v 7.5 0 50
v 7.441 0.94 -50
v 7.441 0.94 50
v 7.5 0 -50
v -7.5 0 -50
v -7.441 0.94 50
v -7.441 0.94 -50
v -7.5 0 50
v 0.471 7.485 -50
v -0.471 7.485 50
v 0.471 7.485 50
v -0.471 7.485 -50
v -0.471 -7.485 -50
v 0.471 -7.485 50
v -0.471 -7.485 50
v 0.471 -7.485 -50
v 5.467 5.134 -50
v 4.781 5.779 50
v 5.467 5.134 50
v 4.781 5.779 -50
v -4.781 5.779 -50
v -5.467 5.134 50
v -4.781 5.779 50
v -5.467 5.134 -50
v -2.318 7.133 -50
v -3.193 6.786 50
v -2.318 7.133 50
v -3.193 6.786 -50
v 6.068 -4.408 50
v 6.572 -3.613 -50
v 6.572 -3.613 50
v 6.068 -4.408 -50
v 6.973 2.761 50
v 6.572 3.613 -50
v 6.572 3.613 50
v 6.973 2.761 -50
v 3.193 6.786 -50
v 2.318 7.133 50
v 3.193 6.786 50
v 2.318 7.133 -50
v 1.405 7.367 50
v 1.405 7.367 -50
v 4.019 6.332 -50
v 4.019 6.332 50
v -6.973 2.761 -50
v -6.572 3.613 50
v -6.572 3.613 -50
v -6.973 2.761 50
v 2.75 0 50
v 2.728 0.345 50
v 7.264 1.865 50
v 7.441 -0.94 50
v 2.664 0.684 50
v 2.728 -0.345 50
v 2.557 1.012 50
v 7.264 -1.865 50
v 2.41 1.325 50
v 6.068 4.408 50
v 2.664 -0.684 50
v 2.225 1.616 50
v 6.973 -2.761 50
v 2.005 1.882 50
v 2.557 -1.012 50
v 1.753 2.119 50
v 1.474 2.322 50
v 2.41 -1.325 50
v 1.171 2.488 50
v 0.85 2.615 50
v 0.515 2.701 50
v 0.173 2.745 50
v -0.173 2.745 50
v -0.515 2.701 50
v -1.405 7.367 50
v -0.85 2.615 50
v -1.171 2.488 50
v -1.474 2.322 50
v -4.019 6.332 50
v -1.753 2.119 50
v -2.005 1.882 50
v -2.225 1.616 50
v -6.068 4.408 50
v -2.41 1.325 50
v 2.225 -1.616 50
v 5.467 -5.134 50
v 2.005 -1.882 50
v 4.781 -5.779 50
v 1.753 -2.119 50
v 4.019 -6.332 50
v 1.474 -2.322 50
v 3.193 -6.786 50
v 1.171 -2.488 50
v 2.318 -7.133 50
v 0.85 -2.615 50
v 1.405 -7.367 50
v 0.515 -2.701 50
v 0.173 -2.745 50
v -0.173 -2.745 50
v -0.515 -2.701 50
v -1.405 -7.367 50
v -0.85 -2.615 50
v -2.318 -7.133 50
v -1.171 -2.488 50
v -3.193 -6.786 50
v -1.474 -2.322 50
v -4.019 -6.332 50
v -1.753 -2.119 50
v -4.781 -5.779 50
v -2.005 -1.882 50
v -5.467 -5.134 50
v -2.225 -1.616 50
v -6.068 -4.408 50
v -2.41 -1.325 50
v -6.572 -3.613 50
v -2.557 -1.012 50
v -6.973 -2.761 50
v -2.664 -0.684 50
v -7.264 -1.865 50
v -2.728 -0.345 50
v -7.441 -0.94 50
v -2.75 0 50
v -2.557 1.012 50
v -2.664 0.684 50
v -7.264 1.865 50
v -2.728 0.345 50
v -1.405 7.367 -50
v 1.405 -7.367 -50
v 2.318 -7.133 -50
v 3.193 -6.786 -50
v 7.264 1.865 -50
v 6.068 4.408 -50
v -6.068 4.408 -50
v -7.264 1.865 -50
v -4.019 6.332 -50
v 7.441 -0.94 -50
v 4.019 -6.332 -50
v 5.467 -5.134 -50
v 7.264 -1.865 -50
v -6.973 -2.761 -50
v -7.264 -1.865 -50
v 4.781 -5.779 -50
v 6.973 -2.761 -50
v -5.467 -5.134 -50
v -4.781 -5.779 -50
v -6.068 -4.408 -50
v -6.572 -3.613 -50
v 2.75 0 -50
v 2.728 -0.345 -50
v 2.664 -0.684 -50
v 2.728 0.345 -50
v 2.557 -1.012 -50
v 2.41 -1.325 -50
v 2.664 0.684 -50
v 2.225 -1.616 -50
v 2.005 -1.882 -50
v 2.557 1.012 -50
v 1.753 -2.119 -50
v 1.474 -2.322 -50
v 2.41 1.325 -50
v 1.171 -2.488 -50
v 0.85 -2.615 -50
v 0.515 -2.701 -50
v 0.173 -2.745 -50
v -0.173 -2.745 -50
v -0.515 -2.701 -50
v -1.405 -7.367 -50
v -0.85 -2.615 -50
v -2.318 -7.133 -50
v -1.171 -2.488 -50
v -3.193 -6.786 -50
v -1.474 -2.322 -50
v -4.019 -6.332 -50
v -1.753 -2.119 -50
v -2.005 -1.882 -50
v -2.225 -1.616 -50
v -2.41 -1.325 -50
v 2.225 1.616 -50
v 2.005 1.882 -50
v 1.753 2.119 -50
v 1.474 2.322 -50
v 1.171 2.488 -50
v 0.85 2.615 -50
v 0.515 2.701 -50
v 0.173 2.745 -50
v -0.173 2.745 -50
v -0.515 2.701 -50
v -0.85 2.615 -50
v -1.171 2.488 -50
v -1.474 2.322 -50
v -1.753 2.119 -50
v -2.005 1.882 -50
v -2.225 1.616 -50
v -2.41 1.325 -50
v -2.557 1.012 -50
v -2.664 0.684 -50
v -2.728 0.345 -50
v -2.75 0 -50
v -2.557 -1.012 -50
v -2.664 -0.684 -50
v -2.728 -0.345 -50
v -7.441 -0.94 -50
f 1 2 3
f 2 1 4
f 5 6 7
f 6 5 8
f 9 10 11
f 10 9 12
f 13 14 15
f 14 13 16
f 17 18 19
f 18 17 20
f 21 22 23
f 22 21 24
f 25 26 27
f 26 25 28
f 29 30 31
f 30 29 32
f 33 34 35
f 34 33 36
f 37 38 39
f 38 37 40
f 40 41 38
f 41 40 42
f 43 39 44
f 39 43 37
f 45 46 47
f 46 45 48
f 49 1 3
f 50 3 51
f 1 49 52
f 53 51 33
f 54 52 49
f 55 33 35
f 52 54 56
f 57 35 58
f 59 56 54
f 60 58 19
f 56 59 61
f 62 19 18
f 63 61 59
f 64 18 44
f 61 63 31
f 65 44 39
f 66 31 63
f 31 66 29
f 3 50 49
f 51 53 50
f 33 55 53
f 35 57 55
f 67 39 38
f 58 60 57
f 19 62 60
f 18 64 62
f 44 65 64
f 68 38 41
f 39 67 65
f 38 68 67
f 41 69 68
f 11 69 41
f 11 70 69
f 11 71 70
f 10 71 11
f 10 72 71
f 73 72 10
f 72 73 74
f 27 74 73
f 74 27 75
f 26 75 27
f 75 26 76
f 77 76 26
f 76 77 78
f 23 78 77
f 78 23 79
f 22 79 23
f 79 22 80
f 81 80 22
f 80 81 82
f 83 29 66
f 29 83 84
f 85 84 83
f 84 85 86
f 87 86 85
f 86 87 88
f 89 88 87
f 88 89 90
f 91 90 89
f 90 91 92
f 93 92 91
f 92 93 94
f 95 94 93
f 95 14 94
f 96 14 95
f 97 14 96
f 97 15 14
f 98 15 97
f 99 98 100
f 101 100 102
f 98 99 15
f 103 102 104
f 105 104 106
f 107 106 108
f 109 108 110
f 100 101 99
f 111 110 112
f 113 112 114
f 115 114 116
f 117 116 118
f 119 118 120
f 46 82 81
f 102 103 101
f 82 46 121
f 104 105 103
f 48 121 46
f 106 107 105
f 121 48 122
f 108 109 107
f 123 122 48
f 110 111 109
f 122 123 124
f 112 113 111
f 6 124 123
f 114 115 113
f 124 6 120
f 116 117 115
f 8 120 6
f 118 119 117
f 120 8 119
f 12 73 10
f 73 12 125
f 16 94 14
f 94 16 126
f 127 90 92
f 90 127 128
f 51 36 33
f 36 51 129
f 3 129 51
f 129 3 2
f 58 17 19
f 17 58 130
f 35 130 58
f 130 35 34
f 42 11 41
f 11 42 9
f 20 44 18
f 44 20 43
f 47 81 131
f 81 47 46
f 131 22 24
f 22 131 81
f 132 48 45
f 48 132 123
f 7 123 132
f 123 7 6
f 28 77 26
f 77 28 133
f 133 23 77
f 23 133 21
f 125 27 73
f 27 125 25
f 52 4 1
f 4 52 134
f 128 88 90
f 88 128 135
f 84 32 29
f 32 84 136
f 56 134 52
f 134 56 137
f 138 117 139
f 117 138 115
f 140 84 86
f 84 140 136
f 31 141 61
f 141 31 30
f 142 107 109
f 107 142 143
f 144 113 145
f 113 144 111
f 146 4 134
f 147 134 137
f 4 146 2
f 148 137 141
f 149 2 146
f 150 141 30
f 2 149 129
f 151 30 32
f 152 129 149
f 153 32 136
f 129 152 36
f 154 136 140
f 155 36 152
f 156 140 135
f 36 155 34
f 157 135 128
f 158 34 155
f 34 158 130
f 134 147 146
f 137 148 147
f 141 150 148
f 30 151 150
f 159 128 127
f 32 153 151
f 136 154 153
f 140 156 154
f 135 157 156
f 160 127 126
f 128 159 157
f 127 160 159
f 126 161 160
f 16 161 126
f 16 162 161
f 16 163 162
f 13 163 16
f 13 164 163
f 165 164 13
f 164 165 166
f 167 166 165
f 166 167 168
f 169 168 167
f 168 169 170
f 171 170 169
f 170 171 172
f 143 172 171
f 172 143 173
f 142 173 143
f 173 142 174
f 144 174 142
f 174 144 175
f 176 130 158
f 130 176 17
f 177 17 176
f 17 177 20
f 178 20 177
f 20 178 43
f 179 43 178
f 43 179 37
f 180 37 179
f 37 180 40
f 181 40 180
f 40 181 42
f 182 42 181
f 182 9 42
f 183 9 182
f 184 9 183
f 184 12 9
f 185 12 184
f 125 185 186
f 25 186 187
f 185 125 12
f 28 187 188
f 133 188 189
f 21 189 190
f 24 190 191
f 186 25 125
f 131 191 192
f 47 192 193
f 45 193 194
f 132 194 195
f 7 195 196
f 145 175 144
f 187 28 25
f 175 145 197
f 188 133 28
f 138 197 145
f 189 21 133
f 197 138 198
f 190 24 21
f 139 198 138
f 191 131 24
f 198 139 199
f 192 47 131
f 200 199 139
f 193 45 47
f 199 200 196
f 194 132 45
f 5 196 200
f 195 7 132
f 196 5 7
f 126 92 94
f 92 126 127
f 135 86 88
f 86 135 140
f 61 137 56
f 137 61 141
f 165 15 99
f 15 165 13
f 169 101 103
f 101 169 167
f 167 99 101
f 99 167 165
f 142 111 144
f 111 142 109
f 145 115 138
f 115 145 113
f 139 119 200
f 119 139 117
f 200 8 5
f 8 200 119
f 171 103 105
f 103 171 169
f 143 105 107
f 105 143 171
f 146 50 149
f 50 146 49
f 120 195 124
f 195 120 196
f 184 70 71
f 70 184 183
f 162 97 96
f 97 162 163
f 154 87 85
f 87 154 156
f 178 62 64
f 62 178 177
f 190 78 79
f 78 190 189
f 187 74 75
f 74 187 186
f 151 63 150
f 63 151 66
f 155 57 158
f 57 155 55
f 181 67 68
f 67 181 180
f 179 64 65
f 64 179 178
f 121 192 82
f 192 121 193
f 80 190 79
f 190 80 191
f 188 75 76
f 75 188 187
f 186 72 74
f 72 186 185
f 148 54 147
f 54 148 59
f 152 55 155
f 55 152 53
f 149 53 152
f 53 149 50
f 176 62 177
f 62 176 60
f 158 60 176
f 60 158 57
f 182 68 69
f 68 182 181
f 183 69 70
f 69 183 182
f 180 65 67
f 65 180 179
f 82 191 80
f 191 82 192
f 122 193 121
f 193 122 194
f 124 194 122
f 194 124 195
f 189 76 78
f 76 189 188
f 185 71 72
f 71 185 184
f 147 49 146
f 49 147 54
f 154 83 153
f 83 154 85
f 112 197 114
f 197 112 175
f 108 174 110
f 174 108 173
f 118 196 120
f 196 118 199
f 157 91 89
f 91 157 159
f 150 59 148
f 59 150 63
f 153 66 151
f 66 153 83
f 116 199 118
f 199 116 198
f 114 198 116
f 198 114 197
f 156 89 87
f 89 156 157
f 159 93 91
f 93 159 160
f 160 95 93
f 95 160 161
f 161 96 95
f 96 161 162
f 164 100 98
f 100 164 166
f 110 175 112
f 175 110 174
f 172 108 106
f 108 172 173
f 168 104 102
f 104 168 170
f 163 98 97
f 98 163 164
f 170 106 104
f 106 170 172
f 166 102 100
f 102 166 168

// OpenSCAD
$fn = 50;


difference() {
	union() {
		translate(v = [0, 0, -50.0000000000]) {
			cylinder(h = 100, r = 7.5000000000);
		}
	}
	union() {
		translate(v = [0, 0, -100.0000000000]) {
			cylinder(h = 200, r = 2.7500000000);
		}
	}
}
